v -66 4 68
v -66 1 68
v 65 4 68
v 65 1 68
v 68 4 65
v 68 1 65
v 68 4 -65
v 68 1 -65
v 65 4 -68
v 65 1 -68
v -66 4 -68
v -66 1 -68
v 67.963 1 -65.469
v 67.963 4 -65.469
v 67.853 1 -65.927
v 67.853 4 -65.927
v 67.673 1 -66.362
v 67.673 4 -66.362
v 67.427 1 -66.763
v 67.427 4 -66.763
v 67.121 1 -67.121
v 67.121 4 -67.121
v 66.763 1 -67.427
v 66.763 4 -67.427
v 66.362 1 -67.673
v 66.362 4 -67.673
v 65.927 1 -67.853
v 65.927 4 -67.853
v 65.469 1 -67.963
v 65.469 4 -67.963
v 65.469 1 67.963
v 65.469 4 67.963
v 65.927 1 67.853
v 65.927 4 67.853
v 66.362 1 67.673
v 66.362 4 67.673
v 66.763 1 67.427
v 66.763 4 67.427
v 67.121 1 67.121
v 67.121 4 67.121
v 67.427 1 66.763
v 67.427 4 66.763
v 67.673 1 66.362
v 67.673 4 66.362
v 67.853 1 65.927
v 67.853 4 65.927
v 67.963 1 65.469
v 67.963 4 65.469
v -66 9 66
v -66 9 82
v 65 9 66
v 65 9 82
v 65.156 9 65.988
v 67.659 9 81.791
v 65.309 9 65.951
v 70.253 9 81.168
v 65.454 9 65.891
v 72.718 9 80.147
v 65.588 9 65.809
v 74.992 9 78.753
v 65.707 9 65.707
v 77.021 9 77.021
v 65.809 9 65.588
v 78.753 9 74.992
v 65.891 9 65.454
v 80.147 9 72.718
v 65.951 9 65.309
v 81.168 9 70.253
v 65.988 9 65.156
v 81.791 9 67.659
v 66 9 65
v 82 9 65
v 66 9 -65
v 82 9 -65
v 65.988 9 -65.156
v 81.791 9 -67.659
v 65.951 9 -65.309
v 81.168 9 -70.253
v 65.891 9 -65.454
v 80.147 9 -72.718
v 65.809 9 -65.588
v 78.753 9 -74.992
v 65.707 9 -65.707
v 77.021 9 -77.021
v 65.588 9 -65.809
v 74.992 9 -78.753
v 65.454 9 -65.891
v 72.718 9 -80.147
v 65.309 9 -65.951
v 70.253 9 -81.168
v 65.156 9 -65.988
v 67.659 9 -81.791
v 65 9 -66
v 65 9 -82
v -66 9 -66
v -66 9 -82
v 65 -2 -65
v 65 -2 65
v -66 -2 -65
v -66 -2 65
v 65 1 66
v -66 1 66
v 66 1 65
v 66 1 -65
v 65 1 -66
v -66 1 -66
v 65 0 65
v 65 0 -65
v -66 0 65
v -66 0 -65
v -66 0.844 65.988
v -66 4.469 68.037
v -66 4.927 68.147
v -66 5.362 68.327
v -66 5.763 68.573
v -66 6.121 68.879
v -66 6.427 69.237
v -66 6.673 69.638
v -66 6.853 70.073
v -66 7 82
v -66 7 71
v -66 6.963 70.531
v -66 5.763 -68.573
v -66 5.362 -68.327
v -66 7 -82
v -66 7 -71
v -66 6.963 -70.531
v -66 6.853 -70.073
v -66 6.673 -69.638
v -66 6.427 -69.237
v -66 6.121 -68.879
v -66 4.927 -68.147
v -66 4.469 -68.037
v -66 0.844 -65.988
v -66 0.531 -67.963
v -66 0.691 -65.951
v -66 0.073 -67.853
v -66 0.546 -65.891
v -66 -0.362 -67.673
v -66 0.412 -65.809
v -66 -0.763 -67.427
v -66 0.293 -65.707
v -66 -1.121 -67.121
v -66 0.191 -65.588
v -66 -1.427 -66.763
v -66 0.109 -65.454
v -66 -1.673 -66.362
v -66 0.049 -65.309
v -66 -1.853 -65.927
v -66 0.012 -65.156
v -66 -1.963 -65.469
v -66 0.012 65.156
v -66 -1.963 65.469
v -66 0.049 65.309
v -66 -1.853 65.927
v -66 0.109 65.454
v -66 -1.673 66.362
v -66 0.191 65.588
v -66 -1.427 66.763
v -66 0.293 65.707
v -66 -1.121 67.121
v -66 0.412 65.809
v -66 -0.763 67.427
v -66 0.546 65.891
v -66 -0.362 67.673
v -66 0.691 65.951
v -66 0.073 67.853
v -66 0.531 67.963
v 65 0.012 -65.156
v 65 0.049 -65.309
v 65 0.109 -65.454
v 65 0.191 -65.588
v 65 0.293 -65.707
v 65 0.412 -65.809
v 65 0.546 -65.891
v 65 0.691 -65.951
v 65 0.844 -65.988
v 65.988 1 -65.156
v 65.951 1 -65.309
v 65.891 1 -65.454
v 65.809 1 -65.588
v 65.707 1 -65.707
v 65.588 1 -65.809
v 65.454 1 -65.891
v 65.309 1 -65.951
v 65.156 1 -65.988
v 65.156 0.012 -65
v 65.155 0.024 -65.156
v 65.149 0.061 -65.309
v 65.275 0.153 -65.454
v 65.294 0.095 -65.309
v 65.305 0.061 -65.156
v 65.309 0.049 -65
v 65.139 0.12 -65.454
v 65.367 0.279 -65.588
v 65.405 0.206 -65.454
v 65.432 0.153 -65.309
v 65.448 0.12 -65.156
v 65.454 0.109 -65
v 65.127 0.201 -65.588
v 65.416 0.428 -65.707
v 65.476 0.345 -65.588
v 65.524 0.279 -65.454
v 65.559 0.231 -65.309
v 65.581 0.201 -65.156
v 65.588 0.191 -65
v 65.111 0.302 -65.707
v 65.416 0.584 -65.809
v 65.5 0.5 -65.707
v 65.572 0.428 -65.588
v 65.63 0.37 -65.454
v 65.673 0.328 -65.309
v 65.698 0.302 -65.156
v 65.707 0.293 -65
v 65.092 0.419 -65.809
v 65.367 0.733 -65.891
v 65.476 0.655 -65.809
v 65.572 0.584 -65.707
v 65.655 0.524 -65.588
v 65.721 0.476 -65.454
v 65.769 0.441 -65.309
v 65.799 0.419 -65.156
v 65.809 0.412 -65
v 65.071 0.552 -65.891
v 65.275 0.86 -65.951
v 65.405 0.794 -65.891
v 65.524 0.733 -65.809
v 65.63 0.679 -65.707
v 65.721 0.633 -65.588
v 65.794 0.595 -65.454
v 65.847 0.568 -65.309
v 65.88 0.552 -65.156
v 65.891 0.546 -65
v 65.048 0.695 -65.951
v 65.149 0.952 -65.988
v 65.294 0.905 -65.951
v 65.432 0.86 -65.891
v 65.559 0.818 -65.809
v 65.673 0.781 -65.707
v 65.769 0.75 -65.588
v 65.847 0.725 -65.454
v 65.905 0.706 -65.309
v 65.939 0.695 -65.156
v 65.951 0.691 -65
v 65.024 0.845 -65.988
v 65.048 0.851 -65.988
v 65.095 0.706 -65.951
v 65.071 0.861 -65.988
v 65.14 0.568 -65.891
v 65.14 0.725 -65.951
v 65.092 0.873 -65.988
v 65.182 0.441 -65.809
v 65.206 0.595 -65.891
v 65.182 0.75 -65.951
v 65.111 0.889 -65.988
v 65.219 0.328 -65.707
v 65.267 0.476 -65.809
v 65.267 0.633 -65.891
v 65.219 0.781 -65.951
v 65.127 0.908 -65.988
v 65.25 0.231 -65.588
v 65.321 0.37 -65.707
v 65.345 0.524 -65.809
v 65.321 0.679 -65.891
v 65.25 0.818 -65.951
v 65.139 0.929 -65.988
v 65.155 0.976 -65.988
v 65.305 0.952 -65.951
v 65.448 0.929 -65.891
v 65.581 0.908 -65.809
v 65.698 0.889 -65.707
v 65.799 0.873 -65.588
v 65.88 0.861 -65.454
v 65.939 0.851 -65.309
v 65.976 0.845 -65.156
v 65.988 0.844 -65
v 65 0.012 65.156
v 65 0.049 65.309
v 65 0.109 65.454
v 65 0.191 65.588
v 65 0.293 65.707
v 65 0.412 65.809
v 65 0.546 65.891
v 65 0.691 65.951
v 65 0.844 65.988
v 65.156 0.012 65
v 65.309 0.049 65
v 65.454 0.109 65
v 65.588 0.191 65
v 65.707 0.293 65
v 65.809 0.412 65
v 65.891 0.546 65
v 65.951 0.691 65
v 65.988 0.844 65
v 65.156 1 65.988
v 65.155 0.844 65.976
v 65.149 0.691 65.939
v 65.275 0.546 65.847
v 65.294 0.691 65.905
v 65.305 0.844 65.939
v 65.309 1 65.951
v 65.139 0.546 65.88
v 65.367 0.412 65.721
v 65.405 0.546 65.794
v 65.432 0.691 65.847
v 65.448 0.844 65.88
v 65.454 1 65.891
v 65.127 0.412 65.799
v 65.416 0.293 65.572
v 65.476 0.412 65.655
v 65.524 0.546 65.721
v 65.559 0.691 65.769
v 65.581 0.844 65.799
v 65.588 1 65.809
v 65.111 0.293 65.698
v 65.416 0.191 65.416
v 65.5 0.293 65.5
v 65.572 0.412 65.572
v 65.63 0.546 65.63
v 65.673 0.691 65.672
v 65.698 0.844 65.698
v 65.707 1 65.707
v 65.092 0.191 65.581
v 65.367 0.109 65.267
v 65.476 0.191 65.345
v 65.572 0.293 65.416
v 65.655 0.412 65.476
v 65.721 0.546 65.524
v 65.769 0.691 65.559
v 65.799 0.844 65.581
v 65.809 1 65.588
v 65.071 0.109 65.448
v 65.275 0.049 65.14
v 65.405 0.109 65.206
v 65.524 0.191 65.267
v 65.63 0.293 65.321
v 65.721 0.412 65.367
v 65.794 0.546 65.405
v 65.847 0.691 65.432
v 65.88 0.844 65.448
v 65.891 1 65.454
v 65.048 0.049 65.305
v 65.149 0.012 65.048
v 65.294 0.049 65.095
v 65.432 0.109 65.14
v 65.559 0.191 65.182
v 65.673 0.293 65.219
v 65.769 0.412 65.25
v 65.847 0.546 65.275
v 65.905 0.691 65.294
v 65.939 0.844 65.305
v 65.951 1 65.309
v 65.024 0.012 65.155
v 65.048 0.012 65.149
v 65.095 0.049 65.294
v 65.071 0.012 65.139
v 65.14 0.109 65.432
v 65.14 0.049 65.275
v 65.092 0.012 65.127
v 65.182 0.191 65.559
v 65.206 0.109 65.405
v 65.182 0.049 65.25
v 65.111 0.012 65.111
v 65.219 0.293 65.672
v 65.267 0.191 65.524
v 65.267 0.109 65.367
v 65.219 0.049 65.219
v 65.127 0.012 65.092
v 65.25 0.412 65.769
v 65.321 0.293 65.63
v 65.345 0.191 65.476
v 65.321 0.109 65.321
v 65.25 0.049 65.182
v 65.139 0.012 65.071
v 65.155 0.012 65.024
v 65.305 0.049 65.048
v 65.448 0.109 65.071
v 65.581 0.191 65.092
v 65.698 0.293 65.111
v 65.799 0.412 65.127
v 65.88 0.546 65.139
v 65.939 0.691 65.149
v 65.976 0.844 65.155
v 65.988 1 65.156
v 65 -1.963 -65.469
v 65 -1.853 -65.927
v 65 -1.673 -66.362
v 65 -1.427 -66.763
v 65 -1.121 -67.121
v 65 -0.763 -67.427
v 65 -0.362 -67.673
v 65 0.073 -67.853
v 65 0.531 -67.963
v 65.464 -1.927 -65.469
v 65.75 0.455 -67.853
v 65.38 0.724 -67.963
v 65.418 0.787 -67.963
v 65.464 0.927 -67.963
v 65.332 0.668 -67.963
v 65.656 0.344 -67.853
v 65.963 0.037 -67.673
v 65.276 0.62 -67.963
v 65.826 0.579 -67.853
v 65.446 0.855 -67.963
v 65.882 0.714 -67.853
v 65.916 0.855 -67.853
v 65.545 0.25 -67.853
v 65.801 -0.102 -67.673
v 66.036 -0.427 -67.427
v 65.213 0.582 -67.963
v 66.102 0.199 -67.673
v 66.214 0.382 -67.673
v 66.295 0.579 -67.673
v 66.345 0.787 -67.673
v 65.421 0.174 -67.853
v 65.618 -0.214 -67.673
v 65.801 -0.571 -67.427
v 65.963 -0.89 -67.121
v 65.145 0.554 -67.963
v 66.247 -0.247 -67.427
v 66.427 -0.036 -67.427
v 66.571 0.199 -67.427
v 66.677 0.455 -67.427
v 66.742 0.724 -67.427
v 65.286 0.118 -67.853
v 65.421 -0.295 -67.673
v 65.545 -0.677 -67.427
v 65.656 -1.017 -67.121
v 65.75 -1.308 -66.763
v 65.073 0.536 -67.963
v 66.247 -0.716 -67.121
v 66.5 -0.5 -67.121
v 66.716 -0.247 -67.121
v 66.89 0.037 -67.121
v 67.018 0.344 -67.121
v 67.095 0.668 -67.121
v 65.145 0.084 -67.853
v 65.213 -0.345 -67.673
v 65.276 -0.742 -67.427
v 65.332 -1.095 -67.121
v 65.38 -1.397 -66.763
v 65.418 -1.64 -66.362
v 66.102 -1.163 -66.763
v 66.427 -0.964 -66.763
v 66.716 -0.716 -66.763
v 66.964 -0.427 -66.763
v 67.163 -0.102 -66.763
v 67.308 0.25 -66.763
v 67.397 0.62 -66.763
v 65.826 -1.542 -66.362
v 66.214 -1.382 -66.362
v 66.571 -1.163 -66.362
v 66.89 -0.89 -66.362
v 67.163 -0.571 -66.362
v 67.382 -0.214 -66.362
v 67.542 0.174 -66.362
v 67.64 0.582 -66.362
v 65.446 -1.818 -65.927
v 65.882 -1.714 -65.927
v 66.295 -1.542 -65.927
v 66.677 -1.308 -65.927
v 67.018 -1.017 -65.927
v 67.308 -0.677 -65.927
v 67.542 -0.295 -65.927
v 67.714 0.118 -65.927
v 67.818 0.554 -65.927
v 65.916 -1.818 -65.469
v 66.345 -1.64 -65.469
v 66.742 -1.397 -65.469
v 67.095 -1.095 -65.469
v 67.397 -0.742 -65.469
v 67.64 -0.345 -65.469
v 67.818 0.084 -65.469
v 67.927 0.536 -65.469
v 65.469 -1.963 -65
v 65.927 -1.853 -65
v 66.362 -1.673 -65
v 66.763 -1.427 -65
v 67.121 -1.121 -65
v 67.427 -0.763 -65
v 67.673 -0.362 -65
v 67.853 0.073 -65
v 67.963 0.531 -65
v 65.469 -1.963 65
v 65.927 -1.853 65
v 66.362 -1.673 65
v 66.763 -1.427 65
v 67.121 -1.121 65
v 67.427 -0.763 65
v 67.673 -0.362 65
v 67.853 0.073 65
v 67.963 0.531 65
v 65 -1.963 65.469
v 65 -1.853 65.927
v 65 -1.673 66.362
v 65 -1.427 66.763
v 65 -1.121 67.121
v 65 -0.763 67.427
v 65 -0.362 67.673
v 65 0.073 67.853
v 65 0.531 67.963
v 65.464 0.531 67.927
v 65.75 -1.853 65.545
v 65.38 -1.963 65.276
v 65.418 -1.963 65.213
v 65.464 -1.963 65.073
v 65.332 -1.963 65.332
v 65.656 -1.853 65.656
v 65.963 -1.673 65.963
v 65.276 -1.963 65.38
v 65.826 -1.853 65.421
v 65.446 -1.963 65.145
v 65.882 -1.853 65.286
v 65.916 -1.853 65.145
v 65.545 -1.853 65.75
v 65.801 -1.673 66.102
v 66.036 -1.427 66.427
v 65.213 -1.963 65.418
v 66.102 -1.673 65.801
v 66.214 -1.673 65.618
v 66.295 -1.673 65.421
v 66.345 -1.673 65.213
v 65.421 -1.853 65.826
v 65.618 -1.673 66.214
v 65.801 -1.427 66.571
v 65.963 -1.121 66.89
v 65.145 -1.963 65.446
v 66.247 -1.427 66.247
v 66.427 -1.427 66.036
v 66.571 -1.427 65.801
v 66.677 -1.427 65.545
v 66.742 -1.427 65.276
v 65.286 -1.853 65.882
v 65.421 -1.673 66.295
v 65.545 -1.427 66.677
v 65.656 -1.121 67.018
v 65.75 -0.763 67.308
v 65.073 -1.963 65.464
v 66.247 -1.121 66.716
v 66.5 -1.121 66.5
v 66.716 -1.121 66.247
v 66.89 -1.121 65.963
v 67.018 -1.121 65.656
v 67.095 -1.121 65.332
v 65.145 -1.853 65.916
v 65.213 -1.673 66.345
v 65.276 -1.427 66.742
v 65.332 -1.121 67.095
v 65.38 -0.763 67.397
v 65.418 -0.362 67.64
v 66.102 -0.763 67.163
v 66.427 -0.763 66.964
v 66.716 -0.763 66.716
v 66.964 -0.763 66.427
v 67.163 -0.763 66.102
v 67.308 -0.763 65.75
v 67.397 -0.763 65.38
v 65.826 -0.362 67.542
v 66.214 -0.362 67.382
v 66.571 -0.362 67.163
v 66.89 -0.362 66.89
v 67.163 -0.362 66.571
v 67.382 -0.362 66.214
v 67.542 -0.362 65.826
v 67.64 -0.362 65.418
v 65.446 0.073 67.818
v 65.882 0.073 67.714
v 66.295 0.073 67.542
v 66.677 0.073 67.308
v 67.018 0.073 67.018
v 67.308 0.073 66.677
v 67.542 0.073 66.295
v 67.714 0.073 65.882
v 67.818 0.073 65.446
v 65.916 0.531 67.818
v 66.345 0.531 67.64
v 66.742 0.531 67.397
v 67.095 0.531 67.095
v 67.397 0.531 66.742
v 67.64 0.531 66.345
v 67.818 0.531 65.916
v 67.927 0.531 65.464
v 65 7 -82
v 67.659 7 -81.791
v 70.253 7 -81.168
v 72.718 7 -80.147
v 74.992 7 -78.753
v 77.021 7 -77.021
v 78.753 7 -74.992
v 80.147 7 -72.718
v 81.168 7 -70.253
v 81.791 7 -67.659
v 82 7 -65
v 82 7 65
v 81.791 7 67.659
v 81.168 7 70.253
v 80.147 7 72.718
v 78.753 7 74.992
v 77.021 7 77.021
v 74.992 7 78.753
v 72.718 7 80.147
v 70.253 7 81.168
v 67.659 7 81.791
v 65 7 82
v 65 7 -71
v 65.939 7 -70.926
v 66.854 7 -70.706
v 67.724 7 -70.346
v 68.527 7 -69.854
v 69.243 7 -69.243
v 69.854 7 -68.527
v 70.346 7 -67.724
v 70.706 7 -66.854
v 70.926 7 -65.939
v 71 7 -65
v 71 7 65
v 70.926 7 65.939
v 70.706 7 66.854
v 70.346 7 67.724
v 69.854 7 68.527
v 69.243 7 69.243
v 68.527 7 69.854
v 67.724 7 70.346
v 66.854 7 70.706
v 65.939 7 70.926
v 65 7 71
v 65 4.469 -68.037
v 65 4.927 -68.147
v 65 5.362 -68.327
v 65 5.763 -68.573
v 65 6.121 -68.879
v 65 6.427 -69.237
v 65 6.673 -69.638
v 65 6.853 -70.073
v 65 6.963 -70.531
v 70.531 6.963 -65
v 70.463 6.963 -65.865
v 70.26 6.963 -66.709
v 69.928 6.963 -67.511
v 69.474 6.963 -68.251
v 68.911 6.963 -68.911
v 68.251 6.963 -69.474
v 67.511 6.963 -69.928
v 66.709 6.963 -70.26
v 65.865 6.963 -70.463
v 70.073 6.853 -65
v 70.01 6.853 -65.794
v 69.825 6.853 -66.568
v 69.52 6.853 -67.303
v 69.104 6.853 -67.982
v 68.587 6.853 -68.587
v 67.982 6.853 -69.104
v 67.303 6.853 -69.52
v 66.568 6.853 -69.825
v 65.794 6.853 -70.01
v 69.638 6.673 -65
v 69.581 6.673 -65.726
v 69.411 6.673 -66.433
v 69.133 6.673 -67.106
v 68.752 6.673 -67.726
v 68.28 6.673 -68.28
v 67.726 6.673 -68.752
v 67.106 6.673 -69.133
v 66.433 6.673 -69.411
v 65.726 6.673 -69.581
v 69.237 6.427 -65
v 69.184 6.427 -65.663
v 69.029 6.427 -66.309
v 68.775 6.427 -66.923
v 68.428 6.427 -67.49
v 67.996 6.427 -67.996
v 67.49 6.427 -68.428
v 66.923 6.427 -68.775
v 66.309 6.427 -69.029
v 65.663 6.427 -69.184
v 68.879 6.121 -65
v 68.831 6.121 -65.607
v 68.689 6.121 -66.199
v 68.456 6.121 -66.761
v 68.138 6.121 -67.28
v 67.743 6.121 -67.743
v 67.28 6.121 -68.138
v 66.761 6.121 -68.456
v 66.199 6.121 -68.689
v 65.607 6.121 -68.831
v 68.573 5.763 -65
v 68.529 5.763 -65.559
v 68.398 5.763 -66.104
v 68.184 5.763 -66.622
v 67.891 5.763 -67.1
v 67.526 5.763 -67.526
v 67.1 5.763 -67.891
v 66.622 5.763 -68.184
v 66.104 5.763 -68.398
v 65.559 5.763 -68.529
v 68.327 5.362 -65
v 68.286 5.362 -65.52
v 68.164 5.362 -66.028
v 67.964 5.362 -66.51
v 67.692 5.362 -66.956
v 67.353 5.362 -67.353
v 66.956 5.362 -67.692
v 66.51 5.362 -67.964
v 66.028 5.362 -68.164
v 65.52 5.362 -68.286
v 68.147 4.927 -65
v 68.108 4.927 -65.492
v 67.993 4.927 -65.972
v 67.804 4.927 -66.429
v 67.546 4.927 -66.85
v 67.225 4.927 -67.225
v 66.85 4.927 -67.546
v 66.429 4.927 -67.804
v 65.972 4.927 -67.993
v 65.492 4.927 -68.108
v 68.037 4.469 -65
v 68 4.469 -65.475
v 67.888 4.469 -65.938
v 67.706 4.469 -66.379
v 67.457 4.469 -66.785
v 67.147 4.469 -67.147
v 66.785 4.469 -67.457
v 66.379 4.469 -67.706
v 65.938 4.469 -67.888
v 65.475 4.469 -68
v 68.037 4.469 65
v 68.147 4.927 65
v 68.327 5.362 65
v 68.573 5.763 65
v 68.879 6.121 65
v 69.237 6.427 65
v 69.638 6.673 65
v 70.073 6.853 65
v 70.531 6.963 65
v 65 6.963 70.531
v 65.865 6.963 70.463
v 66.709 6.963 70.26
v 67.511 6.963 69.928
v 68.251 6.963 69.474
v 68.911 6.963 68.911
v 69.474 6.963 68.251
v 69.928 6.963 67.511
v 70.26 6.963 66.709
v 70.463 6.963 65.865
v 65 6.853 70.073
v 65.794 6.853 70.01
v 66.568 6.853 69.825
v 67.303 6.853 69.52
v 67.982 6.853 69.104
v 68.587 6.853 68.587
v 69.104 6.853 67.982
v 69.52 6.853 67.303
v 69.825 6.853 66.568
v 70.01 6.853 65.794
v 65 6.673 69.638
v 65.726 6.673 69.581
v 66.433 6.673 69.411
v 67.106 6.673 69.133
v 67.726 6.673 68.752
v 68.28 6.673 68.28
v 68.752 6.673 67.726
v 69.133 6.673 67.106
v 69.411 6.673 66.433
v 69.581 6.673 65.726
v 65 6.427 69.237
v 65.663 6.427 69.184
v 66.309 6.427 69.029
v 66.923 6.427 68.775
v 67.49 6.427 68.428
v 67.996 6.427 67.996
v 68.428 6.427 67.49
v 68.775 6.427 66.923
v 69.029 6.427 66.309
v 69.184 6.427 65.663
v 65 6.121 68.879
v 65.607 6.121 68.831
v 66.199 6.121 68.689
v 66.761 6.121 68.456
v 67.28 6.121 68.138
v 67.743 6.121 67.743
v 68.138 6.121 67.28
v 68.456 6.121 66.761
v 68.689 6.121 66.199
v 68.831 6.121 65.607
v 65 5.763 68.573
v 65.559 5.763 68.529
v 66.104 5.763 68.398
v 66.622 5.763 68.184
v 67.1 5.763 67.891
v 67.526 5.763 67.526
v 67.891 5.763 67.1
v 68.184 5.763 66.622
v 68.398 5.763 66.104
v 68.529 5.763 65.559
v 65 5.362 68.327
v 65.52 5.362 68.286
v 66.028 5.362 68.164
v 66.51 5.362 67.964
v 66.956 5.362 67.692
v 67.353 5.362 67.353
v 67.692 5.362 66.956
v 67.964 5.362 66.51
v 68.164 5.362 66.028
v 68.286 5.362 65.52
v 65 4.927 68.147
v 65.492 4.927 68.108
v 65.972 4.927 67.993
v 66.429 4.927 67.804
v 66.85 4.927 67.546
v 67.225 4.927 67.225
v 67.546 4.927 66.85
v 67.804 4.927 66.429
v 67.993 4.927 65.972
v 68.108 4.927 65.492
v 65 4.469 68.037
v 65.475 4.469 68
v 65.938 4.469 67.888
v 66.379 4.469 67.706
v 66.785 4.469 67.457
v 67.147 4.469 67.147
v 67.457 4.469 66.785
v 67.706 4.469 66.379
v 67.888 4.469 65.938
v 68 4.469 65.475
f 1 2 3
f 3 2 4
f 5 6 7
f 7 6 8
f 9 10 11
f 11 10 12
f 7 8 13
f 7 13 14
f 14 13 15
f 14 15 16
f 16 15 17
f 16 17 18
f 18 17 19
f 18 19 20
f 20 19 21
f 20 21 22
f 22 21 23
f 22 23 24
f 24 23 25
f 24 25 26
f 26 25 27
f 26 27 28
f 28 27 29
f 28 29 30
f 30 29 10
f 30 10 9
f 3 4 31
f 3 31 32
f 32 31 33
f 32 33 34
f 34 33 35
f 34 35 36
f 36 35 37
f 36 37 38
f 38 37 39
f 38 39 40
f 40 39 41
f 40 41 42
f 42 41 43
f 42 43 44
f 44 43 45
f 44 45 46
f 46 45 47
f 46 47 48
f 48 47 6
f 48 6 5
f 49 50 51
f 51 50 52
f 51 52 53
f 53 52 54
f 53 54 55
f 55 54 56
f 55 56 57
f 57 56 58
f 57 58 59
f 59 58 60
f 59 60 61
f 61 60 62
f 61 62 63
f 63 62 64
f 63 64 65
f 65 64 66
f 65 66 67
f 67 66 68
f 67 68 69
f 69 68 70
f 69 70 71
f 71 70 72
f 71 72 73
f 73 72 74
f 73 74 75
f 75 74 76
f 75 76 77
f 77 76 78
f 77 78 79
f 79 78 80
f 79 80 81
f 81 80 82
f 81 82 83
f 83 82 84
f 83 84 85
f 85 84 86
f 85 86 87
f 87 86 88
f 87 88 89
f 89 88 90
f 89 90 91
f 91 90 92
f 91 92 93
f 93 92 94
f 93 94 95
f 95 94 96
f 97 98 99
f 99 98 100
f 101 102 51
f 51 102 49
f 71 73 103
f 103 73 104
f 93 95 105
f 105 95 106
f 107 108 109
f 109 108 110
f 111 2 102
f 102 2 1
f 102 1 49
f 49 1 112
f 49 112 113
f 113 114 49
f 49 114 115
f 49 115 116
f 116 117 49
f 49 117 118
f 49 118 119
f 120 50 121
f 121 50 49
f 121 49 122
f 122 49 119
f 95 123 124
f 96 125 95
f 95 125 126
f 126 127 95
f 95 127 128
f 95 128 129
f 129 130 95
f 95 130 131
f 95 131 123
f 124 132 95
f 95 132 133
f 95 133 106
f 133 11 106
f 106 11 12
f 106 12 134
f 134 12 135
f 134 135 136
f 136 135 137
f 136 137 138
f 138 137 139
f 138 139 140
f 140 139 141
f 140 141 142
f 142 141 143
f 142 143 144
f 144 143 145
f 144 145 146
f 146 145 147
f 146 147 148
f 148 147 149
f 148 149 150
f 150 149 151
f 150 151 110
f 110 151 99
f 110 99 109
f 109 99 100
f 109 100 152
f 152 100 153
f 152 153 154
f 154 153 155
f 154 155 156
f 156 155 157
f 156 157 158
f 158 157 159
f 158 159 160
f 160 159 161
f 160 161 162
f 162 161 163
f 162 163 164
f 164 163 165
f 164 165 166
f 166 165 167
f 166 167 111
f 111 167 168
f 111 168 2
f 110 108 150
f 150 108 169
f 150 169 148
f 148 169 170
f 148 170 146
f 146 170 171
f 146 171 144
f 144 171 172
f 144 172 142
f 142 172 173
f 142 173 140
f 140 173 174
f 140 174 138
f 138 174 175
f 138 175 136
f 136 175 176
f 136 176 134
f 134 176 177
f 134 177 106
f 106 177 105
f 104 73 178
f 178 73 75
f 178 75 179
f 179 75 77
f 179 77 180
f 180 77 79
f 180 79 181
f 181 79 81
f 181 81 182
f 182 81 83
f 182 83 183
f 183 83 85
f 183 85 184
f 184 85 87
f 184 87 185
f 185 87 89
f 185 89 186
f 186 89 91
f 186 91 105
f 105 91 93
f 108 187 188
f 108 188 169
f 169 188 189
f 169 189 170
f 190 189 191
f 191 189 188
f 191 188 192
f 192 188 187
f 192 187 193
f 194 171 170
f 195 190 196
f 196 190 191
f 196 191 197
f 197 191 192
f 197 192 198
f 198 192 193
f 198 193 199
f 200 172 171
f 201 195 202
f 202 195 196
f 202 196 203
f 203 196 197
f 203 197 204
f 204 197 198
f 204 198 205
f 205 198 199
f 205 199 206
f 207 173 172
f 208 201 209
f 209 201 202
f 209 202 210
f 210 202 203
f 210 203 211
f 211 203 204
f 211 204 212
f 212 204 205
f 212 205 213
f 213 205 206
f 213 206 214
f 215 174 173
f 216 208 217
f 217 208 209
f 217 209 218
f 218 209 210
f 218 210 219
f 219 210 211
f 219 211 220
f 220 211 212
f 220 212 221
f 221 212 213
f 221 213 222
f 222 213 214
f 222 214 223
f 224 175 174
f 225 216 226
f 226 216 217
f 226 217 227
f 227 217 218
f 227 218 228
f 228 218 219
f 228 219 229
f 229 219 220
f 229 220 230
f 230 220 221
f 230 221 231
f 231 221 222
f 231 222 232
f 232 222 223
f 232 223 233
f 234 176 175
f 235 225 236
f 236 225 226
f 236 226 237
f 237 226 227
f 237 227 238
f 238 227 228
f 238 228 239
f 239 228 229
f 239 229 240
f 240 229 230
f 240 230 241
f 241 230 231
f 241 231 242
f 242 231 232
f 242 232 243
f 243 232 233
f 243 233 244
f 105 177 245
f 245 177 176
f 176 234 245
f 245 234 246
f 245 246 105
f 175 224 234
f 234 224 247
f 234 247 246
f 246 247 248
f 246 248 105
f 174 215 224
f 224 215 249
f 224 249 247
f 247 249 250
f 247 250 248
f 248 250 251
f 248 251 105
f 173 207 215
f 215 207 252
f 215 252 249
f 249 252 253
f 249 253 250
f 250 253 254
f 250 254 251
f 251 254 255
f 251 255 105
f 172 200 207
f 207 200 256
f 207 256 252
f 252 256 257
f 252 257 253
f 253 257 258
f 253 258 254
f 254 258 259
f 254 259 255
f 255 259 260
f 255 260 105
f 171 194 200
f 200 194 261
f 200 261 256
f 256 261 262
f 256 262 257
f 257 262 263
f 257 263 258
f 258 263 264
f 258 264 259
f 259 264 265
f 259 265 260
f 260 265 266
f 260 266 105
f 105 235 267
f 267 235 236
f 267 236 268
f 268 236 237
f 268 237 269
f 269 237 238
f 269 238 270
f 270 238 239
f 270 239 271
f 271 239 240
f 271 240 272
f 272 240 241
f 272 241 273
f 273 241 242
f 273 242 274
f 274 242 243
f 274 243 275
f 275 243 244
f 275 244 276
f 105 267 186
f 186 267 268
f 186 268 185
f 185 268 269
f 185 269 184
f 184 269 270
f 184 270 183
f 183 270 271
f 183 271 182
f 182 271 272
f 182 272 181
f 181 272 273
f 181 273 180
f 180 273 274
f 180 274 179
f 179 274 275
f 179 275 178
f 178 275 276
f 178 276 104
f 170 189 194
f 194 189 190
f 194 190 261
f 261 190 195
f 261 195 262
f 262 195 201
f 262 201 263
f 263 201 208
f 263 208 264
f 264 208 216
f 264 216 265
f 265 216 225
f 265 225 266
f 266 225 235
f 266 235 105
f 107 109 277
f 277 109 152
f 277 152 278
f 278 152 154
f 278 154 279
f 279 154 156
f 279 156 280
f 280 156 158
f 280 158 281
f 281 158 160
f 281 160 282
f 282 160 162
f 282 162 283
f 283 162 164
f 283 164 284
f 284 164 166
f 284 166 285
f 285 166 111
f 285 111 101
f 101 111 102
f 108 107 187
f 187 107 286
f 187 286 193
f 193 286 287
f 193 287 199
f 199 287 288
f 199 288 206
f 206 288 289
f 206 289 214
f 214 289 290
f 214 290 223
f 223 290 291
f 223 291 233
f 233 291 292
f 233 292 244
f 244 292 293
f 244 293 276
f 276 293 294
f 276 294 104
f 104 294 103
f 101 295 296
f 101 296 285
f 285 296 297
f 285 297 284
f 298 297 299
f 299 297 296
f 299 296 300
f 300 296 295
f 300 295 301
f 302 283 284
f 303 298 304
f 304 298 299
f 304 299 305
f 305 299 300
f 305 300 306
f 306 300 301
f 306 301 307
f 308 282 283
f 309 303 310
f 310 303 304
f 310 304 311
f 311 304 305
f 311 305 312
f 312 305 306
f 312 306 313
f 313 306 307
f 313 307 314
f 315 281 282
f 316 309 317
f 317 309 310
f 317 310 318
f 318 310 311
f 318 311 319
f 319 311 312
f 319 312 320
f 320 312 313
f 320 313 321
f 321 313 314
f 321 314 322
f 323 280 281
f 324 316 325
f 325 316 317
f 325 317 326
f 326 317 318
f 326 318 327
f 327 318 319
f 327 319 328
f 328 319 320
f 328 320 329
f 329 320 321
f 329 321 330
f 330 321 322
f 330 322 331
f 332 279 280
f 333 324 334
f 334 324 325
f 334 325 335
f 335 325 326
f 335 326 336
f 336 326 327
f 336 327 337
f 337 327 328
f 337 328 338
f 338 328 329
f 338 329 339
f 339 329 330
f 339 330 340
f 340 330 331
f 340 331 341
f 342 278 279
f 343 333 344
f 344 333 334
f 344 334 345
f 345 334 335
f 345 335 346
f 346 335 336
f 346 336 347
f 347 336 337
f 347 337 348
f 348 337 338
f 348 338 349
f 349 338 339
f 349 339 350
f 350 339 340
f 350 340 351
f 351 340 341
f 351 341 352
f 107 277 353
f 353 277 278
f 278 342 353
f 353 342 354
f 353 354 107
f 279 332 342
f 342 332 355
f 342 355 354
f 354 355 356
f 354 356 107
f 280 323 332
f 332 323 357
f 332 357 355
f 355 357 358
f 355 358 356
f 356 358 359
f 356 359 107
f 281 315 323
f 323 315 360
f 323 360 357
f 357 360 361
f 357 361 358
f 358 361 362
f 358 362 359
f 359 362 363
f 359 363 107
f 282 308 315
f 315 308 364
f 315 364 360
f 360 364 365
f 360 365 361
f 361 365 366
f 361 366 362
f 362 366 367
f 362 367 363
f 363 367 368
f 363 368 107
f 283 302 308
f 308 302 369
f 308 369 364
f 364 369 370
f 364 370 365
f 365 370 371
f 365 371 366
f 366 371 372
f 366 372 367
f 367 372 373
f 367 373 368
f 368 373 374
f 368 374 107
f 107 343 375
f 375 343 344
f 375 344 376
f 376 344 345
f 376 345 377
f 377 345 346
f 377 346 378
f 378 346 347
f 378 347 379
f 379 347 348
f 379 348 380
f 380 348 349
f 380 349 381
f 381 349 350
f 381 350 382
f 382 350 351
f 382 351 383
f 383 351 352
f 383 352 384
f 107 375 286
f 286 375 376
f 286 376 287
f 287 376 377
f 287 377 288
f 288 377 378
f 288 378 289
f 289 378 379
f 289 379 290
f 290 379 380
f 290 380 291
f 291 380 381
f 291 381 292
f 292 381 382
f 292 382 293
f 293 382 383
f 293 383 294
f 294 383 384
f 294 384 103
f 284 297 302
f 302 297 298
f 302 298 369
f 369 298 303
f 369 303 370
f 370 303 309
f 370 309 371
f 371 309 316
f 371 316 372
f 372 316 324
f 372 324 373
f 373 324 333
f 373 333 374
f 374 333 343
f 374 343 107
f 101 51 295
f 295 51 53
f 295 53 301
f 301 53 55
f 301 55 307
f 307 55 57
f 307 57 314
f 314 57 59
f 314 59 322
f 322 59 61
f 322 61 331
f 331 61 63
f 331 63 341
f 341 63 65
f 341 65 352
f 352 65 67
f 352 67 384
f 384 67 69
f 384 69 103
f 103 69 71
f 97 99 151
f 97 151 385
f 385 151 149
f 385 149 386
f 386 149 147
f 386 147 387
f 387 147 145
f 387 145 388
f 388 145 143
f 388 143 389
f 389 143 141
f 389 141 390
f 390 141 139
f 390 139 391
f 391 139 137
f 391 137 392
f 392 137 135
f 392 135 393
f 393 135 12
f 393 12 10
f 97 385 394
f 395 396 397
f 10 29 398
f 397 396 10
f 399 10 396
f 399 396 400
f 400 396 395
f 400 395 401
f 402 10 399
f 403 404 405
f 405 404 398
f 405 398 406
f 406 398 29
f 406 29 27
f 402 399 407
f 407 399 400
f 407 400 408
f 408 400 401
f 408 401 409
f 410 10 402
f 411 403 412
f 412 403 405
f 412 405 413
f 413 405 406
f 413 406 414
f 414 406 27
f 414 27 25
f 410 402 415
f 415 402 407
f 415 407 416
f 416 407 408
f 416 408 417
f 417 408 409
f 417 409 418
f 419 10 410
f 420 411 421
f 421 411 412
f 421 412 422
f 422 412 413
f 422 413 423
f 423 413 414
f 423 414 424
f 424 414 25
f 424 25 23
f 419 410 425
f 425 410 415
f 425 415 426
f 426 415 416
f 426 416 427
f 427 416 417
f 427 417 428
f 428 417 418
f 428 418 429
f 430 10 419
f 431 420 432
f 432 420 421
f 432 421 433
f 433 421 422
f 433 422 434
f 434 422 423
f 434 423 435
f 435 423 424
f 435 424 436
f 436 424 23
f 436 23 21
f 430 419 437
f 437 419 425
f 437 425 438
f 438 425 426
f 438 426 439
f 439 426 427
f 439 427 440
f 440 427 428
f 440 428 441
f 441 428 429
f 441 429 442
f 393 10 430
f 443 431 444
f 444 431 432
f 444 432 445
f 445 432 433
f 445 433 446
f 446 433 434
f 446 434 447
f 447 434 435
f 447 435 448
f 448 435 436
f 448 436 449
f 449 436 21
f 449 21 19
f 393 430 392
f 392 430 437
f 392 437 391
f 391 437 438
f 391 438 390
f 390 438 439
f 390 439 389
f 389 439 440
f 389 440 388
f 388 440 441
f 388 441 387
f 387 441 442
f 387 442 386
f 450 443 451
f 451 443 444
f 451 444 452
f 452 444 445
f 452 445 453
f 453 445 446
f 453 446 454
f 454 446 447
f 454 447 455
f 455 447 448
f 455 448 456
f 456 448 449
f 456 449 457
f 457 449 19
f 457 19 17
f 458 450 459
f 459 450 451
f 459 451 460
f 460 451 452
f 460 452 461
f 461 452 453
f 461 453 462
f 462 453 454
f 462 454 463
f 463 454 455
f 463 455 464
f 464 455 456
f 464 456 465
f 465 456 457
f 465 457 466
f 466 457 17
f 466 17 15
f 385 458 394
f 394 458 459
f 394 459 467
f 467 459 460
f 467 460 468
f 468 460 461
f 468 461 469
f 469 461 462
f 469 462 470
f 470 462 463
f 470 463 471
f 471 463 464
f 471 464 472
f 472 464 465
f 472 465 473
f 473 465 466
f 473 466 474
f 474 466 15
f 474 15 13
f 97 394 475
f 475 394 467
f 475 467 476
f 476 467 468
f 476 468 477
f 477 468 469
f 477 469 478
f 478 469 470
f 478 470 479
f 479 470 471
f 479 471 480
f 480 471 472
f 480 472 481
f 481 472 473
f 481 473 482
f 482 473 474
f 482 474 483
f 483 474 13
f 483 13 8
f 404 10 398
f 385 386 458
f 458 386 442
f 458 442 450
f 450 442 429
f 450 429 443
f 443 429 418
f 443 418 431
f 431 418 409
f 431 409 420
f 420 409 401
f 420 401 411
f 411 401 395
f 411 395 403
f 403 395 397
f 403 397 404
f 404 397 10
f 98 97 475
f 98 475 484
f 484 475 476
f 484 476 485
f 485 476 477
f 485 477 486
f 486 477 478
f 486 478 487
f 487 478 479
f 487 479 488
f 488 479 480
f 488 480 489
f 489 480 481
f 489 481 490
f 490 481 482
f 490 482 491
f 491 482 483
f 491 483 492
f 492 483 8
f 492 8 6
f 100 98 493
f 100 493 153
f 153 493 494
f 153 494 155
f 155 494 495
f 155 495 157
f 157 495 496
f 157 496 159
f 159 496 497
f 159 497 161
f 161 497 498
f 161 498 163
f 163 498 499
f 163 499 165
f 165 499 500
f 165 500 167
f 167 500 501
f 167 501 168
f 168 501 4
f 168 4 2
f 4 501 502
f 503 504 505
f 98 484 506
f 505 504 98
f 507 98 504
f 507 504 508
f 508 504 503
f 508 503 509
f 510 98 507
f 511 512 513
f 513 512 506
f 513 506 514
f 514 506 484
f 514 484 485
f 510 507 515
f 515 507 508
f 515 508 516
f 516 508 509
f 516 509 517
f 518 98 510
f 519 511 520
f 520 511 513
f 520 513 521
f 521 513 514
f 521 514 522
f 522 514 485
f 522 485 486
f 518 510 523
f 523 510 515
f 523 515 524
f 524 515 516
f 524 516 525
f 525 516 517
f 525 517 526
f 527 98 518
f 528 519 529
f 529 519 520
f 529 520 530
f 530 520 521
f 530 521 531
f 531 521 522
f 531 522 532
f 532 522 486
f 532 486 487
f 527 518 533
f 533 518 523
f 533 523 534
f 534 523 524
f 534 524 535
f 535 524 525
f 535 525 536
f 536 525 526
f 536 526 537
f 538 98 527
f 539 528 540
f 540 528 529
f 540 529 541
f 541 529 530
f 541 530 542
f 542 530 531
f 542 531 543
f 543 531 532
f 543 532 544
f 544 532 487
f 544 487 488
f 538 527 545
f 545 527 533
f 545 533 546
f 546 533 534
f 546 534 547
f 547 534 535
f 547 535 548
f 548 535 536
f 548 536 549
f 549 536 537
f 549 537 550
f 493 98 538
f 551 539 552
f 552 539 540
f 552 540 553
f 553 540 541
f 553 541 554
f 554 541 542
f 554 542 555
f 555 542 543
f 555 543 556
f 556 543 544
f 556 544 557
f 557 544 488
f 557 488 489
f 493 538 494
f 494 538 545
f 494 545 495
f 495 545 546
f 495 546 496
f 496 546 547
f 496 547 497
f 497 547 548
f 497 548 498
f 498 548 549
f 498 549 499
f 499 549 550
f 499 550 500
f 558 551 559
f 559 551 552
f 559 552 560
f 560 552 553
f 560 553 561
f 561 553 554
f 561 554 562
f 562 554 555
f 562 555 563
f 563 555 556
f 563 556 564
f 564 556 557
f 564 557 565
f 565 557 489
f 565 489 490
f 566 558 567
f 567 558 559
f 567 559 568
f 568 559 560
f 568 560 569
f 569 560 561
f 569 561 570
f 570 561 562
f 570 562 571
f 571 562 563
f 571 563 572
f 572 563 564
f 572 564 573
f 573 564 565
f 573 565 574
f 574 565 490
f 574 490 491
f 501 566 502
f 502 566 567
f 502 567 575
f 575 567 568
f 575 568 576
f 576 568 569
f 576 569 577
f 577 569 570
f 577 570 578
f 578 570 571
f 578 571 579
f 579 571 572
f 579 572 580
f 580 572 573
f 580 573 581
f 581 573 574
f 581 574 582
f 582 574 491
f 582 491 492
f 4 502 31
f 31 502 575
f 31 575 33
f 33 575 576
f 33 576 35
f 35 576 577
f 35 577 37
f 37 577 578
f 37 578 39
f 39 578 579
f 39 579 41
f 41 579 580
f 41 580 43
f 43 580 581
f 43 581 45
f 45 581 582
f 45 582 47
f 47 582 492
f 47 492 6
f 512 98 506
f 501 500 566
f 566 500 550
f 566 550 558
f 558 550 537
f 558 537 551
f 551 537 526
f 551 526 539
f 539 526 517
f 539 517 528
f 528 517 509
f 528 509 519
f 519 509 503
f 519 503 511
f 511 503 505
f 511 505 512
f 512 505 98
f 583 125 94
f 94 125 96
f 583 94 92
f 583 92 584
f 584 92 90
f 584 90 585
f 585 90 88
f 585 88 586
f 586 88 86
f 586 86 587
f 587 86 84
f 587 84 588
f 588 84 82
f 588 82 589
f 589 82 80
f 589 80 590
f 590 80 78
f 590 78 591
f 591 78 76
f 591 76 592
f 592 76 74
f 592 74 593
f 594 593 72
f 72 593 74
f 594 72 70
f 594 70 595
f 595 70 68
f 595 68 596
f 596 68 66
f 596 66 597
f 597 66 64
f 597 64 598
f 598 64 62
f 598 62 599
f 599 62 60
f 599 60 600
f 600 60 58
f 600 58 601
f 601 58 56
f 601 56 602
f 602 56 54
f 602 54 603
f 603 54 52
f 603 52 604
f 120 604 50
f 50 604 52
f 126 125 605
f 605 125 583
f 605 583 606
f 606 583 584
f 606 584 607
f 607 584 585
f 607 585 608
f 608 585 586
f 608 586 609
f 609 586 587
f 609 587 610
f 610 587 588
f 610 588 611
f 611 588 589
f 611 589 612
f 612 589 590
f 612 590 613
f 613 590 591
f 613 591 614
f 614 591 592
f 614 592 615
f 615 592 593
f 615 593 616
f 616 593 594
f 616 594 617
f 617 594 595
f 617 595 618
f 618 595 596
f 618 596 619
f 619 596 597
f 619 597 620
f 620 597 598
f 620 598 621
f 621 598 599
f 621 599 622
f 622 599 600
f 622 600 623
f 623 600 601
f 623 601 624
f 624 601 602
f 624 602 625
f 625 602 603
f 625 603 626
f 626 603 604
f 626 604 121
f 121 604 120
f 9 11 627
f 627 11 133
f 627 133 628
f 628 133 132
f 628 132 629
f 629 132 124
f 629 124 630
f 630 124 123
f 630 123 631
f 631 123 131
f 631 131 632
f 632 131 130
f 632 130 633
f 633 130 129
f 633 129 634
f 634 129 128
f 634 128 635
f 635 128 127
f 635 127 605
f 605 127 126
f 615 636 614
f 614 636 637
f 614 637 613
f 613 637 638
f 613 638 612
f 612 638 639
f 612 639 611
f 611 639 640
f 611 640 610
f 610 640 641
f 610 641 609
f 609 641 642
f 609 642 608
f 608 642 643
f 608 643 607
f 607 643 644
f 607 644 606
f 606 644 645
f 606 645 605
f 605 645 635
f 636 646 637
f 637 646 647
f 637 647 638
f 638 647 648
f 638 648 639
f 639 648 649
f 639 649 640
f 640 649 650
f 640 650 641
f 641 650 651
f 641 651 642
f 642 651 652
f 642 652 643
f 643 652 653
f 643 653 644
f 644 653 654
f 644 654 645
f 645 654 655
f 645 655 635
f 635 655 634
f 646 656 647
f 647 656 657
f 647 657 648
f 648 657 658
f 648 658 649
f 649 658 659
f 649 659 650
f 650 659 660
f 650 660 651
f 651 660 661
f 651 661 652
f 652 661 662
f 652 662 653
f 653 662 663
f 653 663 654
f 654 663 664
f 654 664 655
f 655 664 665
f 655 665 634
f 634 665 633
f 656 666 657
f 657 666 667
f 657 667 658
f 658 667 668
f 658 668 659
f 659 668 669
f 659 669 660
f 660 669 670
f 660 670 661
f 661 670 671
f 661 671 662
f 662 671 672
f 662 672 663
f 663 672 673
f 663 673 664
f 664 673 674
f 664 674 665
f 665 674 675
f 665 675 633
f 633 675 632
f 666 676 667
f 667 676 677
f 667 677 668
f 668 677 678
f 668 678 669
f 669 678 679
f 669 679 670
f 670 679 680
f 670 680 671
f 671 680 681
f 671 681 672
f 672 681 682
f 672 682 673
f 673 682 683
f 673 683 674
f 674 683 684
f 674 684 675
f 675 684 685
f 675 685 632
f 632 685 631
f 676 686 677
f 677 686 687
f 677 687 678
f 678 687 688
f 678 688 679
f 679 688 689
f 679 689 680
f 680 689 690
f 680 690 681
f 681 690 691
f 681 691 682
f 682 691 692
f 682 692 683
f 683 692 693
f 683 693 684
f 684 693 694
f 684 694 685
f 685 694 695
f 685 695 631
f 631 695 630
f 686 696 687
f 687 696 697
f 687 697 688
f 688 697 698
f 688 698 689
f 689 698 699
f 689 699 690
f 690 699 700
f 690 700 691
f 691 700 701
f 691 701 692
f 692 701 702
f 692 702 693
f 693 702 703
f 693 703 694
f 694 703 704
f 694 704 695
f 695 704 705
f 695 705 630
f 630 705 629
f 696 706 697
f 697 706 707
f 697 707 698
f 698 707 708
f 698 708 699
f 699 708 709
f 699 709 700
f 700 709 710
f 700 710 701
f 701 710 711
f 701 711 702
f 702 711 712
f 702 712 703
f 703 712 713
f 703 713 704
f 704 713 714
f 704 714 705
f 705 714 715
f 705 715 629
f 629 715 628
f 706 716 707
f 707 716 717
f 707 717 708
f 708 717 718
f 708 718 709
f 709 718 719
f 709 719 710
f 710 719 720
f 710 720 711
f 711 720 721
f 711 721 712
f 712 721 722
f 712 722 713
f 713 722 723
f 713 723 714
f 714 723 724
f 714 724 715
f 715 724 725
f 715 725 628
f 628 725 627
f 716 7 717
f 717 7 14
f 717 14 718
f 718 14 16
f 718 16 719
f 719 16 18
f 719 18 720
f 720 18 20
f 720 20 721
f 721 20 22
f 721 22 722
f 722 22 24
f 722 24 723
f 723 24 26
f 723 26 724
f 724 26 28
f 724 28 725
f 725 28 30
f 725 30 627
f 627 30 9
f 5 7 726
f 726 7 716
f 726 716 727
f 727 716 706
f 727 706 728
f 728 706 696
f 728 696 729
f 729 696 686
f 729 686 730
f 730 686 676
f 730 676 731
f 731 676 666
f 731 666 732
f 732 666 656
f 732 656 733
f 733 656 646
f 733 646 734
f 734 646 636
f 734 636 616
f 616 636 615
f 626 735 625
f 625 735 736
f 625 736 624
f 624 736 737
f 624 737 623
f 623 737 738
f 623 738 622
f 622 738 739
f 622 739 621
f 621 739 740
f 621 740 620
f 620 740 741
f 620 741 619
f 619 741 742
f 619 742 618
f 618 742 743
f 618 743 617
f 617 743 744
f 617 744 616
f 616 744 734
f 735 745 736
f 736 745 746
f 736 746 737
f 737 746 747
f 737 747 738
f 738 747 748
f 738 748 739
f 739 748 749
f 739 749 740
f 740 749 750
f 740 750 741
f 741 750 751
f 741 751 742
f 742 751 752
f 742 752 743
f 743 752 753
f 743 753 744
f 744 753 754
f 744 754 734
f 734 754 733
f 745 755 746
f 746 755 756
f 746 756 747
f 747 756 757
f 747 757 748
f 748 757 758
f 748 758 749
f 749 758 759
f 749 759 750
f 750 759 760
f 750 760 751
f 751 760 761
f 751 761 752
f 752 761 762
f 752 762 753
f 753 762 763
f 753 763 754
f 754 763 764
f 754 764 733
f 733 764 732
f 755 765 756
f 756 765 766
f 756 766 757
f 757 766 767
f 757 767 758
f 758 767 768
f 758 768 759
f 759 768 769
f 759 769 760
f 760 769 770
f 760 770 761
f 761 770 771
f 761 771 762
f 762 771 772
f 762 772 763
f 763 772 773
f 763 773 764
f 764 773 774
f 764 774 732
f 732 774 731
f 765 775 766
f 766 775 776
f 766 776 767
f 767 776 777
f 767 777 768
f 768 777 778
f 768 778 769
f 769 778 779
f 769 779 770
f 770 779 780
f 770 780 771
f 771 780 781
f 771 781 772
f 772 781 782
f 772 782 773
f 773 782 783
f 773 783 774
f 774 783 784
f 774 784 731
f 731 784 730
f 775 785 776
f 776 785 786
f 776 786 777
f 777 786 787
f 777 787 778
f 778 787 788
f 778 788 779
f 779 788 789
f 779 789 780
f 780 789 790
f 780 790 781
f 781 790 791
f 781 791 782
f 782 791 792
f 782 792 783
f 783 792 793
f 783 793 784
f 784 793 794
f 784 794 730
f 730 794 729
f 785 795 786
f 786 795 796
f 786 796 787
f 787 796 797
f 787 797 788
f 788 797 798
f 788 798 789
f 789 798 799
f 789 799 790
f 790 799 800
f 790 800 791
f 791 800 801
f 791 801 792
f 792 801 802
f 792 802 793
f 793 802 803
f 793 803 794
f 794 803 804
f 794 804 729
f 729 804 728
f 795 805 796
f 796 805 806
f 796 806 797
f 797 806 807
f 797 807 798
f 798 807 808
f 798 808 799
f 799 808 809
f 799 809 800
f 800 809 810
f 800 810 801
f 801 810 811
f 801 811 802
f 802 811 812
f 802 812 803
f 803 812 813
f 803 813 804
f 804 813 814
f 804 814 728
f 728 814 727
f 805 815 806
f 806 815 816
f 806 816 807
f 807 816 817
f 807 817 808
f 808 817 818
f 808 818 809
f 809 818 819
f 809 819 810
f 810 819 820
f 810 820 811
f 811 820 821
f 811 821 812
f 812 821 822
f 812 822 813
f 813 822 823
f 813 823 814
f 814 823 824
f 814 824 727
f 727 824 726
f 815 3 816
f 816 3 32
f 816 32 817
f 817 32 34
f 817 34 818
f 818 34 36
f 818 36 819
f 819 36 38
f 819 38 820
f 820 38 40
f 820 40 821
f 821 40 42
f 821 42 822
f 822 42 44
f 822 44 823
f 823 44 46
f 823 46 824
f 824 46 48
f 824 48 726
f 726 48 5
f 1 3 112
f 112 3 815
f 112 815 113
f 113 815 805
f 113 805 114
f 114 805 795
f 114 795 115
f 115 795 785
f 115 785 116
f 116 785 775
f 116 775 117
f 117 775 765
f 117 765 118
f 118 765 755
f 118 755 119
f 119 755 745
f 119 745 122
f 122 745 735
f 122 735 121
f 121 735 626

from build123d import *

# Parameters (mm, degrees)
SKETCH1_W           = 132
SKETCH1_H           = 132
BOSS_EXTRUDE1_DEPTH = 9
SHELL1_T            = 2
SKETCH2_W           = 175.70161203
SKETCH2_H           = 38.948555966
CUT_EXTRUDE1_DEPTH  = 2
FILLET1_R           = 1
FILLET2_R           = 3
BOSS_EXTRUDE2_START = -2
BOSS_EXTRUDE2_DEPTH = 2
FILLET3_R           = 3


with BuildPart() as part:
    # Sketch1 → Boss-Extrude1 (new body)
    with BuildSketch(Plane(origin=(0, 0, 0), x_dir=(1, 0, 0), z_dir=(0, 1, 0))):
        Rectangle(SKETCH1_W, SKETCH1_H)
    extrude(amount=BOSS_EXTRUDE1_DEPTH)

    # Shell1
    shell1_openings = [part.faces().sort_by_distance(p)[0] for p in [
        (0, 9, 0),
    ]]
    offset(amount=SHELL1_T, openings=shell1_openings, kind=Kind.INTERSECTION)

    # Sketch2 → Cut-Extrude1 (cut)
    with BuildSketch(Plane.ZY.offset(68)):
        Rectangle(SKETCH2_W, SKETCH2_H)
    extrude(amount=-CUT_EXTRUDE1_DEPTH, mode=Mode.SUBTRACT)

    # Fillet1
    fillet1_edges = [part.edges().sort_by_distance(p)[0] for p in [
        (0, 0, 66),
        (66, 0, 0),
        (66, 4.5, 66),
        (0, 0, -66),
        (66, 4.5, -66),
    ]]
    fillet(fillet1_edges, radius=FILLET1_R)

    # Fillet2
    fillet2_edges = [part.edges().sort_by_distance(p)[0] for p in [
        (1, -2, 68),
        (1, -2, -68),
        (68, -2, 0),
        (68, 3.5, -68),
        (68, 3.5, 68),
    ]]
    fillet(fillet2_edges, radius=FILLET2_R)

    # Sketch4 → Boss-Extrude2 (add)
    with BuildSketch(Plane(origin=(0, 9, 0), x_dir=(1, 0, 0), z_dir=(0, 1, 0)).offset(BOSS_EXTRUDE2_START)):
        with BuildLine():
            Line((-66, 82), (-66, 68))
            Line((-66, 68), (65, 68))
            ThreePointArc((65, 68), (67.121320344, 67.121320344), (68, 65))
            Line((68, 65), (68, -65))
            ThreePointArc((68, -65), (67.121320344, -67.121320344), (65, -68))
            Line((65, -68), (-66, -68))
            Line((-66, -68), (-66, -82))
            Line((-66, -82), (65, -82))
            ThreePointArc((65, -82), (77.02081528, -77.02081528), (82, -65))
            Line((82, -65), (82, 65))
            ThreePointArc((82, 65), (77.02081528, 77.02081528), (65, 82))
            Line((65, 82), (-66, 82))
        make_face()
    extrude(amount=BOSS_EXTRUDE2_DEPTH)

    # Fillet3
    fillet3_edges = [part.edges().sort_by_distance(p)[0] for p in [
        (-0.5, 7, 68),
        (67.121320344, 7, 67.121320344),
        (68, 7, 0),
        (67.121320344, 7, -67.121320344),
        (-0.5, 7, -68),
    ]]
    fillet(fillet3_edges, radius=FILLET3_R)


solid = part.part
